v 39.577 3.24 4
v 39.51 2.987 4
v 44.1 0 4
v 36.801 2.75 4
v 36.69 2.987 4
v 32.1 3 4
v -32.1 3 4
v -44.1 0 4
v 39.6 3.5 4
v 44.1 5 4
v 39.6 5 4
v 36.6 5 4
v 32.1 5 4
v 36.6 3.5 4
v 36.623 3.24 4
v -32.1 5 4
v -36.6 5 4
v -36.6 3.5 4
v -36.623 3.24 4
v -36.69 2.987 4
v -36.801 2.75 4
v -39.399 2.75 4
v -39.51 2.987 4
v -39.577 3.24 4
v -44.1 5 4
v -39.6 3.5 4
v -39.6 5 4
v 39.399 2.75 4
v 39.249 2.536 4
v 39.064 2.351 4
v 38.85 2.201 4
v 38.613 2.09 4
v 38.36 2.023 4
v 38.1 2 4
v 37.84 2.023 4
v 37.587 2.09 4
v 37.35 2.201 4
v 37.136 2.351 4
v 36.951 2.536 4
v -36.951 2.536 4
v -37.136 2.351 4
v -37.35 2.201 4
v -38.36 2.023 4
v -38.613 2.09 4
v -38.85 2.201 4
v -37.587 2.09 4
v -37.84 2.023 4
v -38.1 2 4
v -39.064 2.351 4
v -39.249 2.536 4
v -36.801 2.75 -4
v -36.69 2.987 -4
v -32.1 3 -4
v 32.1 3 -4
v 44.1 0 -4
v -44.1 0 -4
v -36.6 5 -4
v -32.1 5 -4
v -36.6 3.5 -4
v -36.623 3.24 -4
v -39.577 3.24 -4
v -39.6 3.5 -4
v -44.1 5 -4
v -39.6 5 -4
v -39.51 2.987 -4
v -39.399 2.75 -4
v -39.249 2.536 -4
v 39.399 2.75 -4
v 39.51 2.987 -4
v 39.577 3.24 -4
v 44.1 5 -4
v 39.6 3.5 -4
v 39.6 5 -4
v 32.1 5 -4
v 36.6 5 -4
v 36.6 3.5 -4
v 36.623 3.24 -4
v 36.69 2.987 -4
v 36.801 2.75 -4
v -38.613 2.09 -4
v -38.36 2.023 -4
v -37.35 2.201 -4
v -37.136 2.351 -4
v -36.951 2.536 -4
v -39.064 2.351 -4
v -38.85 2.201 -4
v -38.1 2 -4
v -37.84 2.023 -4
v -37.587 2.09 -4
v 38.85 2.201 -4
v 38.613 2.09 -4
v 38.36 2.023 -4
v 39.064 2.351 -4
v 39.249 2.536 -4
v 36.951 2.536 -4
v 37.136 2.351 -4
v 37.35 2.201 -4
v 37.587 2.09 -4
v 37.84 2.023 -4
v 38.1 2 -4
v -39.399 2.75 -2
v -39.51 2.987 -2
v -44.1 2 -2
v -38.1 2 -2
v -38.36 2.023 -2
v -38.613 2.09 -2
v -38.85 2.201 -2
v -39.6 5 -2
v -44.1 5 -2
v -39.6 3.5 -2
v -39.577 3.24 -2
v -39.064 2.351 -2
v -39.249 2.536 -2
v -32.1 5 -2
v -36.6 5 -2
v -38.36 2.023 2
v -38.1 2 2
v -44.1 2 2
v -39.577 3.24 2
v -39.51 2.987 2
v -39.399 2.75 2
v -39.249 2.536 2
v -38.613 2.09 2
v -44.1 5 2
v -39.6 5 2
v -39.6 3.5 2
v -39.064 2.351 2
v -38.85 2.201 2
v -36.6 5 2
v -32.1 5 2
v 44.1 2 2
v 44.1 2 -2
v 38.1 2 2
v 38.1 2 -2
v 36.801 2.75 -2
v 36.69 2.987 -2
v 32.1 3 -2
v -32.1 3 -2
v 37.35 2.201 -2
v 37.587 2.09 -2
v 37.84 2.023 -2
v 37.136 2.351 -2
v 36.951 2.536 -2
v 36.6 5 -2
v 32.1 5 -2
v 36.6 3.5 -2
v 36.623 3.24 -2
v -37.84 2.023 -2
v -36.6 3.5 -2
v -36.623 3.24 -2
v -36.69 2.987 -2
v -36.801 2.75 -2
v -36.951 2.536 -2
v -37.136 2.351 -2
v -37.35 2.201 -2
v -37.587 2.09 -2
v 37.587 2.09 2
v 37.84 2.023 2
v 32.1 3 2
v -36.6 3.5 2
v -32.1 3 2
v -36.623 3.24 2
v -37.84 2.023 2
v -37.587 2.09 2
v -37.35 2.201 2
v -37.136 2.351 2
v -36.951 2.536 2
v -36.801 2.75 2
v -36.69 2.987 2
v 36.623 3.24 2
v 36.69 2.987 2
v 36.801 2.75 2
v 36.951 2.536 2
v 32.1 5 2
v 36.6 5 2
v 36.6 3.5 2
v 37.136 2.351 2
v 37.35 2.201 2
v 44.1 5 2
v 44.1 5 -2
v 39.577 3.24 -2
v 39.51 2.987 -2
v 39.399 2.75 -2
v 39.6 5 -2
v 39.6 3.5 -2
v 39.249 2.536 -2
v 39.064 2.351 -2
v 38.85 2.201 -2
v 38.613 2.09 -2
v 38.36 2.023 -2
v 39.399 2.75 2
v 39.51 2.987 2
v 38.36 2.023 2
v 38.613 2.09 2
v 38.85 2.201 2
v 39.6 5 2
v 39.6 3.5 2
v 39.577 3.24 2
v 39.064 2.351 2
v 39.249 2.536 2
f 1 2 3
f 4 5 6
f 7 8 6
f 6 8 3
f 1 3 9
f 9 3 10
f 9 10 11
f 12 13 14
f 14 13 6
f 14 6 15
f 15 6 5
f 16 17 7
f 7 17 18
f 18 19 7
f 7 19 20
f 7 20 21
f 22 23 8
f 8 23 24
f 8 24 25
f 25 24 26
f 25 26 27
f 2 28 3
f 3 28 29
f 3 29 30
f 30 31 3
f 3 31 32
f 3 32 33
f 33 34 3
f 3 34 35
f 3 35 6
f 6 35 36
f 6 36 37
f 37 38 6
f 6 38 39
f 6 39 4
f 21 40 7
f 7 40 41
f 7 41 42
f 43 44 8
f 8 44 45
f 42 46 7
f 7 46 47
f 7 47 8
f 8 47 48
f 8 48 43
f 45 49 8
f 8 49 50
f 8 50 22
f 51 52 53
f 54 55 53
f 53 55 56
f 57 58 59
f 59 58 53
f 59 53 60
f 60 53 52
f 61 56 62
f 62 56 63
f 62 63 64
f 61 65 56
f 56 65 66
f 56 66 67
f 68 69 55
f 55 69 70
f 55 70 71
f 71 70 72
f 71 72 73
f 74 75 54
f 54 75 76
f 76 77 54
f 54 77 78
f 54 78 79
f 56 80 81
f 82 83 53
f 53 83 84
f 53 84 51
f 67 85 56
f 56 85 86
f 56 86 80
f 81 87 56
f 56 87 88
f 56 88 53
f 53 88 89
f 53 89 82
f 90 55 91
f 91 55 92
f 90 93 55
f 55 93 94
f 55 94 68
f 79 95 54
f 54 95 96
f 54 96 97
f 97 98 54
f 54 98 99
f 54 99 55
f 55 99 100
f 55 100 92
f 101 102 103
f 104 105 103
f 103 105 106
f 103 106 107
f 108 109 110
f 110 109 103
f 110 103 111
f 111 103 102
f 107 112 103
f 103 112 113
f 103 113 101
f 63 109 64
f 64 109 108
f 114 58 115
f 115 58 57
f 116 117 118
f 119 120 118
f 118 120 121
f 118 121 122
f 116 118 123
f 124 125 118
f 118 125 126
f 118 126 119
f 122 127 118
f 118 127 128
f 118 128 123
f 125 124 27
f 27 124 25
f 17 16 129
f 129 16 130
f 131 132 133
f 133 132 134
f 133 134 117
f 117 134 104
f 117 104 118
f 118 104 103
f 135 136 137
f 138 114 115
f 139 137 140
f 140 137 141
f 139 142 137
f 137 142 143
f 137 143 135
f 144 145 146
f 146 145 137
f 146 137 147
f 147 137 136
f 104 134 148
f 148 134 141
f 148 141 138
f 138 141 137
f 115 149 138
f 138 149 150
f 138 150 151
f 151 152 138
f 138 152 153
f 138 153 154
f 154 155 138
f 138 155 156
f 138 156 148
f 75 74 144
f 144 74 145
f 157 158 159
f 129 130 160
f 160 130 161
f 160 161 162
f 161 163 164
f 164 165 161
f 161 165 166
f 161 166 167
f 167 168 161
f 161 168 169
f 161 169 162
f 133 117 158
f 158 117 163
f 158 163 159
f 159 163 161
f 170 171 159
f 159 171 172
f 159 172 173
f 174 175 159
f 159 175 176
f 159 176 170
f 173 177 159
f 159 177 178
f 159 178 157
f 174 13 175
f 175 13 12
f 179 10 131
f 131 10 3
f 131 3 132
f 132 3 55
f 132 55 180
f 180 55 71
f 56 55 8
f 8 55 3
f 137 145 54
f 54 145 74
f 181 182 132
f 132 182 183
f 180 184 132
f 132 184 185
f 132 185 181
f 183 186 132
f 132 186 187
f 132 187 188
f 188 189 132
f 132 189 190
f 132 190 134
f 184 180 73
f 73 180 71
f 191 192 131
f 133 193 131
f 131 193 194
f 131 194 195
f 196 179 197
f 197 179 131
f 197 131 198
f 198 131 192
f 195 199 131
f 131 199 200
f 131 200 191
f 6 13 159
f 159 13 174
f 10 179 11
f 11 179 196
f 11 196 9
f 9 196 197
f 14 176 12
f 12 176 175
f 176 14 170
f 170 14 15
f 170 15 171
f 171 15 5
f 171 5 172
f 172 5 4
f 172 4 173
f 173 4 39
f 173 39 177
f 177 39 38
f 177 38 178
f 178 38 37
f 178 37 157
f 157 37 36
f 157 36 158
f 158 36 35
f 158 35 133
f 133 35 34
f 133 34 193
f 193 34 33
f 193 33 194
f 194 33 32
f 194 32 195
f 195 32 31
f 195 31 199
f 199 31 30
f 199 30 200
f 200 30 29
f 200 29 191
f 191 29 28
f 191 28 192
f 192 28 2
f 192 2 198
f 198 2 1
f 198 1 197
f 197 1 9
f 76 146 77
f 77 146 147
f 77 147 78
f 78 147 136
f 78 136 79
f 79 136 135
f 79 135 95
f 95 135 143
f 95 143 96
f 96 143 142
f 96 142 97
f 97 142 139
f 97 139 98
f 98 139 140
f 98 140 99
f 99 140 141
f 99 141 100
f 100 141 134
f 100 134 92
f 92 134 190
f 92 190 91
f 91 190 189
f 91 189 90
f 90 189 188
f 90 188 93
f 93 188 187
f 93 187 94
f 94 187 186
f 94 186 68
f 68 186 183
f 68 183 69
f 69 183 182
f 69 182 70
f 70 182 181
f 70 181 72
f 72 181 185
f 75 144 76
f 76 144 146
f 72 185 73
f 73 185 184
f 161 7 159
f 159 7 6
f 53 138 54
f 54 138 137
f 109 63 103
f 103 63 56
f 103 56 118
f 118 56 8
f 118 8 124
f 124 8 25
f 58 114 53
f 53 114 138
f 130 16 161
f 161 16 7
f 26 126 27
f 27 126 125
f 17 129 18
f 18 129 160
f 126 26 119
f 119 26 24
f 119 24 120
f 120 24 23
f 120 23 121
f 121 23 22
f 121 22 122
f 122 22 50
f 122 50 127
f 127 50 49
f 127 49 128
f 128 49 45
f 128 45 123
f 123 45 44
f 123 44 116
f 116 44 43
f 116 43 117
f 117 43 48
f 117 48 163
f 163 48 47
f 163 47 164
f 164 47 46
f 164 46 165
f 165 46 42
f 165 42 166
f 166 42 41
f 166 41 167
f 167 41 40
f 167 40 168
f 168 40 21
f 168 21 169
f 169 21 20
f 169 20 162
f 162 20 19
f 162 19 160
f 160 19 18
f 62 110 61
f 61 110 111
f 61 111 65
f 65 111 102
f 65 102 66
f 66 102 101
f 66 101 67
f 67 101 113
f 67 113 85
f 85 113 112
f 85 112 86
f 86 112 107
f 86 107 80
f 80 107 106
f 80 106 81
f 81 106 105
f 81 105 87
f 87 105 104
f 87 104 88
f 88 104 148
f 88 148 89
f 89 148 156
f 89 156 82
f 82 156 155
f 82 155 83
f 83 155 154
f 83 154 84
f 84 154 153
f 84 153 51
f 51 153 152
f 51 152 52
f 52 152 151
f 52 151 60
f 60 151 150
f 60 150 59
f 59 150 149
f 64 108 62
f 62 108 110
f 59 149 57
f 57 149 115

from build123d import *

# Parameters (mm, degrees)
SKETCH1_W           = 44.1
SKETCH1_H           = 8
BOSS_EXTRUDE1_DEPTH = 2
SKETCH2_W           = 12
SKETCH2_H           = 2
BOSS_EXTRUDE2_DEPTH = 3
CUT_EXTRUDE1_DEPTH  = 46.097782651
SKETCH4_W           = 32.1
SKETCH4_H           = 2
BOSS_EXTRUDE3_DEPTH = 1


with BuildPart() as part:
    # Sketch1 → Boss-Extrude1 (new body)
    with BuildSketch(Plane(origin=(0, 0, 0), x_dir=(1, 0, 0), z_dir=(0, 1, 0))):
        with Locations((22.05, 0)):
            Rectangle(SKETCH1_W, SKETCH1_H)
    boss_extrude1 = extrude(amount=BOSS_EXTRUDE1_DEPTH)

    # Sketch2 → Boss-Extrude2 (add)
    with BuildSketch(Plane(origin=(0, 2, 0), x_dir=(1, 0, 0), z_dir=(0, 1, 0))):
        with Locations((38.1, 3)):
            Rectangle(SKETCH2_W, SKETCH2_H)
        with Locations((38.1, -3)):
            Rectangle(SKETCH2_W, SKETCH2_H)
    boss_extrude2 = extrude(amount=BOSS_EXTRUDE2_DEPTH)

    # Sketch3 → Cut-Extrude1 (cut, through all)
    with BuildSketch(Plane.XY.offset(4)):
        with BuildLine():
            Line((36.6, 3.5), (36.6, 5))
            Line((36.6, 5), (39.6, 5))
            Line((39.6, 5), (39.6, 3.5))
            ThreePointArc((39.6, 3.5), (38.1, 2), (36.6, 3.5))
        make_face()
    cut_extrude1 = extrude(amount=-CUT_EXTRUDE1_DEPTH, mode=Mode.SUBTRACT)

    # Sketch4 → Boss-Extrude3 (add)
    with BuildSketch(Plane(origin=(0, 2, 0), x_dir=(1, 0, 0), z_dir=(0, 1, 0))):
        with Locations((16.05, -3)):
            Rectangle(SKETCH4_W, SKETCH4_H)
        with Locations((16.05, 3)):
            Rectangle(SKETCH4_W, SKETCH4_H)
    boss_extrude3 = extrude(amount=BOSS_EXTRUDE3_DEPTH)

    # Mirror1: Boss-Extrude1, Boss-Extrude2, Cut-Extrude1, Boss-Extrude3 across plane
    add(boss_extrude1.mirror(Plane(origin=(0, 0, 0), x_dir=(0, 0, 1), z_dir=(1, 0, 0))))
    add(boss_extrude2.mirror(Plane(origin=(0, 0, 0), x_dir=(0, 0, 1), z_dir=(1, 0, 0))))
    add(cut_extrude1.mirror(Plane(origin=(0, 0, 0), x_dir=(0, 0, 1), z_dir=(1, 0, 0))), mode=Mode.SUBTRACT)
    add(boss_extrude3.mirror(Plane(origin=(0, 0, 0), x_dir=(0, 0, 1), z_dir=(1, 0, 0))))


solid = part.part
